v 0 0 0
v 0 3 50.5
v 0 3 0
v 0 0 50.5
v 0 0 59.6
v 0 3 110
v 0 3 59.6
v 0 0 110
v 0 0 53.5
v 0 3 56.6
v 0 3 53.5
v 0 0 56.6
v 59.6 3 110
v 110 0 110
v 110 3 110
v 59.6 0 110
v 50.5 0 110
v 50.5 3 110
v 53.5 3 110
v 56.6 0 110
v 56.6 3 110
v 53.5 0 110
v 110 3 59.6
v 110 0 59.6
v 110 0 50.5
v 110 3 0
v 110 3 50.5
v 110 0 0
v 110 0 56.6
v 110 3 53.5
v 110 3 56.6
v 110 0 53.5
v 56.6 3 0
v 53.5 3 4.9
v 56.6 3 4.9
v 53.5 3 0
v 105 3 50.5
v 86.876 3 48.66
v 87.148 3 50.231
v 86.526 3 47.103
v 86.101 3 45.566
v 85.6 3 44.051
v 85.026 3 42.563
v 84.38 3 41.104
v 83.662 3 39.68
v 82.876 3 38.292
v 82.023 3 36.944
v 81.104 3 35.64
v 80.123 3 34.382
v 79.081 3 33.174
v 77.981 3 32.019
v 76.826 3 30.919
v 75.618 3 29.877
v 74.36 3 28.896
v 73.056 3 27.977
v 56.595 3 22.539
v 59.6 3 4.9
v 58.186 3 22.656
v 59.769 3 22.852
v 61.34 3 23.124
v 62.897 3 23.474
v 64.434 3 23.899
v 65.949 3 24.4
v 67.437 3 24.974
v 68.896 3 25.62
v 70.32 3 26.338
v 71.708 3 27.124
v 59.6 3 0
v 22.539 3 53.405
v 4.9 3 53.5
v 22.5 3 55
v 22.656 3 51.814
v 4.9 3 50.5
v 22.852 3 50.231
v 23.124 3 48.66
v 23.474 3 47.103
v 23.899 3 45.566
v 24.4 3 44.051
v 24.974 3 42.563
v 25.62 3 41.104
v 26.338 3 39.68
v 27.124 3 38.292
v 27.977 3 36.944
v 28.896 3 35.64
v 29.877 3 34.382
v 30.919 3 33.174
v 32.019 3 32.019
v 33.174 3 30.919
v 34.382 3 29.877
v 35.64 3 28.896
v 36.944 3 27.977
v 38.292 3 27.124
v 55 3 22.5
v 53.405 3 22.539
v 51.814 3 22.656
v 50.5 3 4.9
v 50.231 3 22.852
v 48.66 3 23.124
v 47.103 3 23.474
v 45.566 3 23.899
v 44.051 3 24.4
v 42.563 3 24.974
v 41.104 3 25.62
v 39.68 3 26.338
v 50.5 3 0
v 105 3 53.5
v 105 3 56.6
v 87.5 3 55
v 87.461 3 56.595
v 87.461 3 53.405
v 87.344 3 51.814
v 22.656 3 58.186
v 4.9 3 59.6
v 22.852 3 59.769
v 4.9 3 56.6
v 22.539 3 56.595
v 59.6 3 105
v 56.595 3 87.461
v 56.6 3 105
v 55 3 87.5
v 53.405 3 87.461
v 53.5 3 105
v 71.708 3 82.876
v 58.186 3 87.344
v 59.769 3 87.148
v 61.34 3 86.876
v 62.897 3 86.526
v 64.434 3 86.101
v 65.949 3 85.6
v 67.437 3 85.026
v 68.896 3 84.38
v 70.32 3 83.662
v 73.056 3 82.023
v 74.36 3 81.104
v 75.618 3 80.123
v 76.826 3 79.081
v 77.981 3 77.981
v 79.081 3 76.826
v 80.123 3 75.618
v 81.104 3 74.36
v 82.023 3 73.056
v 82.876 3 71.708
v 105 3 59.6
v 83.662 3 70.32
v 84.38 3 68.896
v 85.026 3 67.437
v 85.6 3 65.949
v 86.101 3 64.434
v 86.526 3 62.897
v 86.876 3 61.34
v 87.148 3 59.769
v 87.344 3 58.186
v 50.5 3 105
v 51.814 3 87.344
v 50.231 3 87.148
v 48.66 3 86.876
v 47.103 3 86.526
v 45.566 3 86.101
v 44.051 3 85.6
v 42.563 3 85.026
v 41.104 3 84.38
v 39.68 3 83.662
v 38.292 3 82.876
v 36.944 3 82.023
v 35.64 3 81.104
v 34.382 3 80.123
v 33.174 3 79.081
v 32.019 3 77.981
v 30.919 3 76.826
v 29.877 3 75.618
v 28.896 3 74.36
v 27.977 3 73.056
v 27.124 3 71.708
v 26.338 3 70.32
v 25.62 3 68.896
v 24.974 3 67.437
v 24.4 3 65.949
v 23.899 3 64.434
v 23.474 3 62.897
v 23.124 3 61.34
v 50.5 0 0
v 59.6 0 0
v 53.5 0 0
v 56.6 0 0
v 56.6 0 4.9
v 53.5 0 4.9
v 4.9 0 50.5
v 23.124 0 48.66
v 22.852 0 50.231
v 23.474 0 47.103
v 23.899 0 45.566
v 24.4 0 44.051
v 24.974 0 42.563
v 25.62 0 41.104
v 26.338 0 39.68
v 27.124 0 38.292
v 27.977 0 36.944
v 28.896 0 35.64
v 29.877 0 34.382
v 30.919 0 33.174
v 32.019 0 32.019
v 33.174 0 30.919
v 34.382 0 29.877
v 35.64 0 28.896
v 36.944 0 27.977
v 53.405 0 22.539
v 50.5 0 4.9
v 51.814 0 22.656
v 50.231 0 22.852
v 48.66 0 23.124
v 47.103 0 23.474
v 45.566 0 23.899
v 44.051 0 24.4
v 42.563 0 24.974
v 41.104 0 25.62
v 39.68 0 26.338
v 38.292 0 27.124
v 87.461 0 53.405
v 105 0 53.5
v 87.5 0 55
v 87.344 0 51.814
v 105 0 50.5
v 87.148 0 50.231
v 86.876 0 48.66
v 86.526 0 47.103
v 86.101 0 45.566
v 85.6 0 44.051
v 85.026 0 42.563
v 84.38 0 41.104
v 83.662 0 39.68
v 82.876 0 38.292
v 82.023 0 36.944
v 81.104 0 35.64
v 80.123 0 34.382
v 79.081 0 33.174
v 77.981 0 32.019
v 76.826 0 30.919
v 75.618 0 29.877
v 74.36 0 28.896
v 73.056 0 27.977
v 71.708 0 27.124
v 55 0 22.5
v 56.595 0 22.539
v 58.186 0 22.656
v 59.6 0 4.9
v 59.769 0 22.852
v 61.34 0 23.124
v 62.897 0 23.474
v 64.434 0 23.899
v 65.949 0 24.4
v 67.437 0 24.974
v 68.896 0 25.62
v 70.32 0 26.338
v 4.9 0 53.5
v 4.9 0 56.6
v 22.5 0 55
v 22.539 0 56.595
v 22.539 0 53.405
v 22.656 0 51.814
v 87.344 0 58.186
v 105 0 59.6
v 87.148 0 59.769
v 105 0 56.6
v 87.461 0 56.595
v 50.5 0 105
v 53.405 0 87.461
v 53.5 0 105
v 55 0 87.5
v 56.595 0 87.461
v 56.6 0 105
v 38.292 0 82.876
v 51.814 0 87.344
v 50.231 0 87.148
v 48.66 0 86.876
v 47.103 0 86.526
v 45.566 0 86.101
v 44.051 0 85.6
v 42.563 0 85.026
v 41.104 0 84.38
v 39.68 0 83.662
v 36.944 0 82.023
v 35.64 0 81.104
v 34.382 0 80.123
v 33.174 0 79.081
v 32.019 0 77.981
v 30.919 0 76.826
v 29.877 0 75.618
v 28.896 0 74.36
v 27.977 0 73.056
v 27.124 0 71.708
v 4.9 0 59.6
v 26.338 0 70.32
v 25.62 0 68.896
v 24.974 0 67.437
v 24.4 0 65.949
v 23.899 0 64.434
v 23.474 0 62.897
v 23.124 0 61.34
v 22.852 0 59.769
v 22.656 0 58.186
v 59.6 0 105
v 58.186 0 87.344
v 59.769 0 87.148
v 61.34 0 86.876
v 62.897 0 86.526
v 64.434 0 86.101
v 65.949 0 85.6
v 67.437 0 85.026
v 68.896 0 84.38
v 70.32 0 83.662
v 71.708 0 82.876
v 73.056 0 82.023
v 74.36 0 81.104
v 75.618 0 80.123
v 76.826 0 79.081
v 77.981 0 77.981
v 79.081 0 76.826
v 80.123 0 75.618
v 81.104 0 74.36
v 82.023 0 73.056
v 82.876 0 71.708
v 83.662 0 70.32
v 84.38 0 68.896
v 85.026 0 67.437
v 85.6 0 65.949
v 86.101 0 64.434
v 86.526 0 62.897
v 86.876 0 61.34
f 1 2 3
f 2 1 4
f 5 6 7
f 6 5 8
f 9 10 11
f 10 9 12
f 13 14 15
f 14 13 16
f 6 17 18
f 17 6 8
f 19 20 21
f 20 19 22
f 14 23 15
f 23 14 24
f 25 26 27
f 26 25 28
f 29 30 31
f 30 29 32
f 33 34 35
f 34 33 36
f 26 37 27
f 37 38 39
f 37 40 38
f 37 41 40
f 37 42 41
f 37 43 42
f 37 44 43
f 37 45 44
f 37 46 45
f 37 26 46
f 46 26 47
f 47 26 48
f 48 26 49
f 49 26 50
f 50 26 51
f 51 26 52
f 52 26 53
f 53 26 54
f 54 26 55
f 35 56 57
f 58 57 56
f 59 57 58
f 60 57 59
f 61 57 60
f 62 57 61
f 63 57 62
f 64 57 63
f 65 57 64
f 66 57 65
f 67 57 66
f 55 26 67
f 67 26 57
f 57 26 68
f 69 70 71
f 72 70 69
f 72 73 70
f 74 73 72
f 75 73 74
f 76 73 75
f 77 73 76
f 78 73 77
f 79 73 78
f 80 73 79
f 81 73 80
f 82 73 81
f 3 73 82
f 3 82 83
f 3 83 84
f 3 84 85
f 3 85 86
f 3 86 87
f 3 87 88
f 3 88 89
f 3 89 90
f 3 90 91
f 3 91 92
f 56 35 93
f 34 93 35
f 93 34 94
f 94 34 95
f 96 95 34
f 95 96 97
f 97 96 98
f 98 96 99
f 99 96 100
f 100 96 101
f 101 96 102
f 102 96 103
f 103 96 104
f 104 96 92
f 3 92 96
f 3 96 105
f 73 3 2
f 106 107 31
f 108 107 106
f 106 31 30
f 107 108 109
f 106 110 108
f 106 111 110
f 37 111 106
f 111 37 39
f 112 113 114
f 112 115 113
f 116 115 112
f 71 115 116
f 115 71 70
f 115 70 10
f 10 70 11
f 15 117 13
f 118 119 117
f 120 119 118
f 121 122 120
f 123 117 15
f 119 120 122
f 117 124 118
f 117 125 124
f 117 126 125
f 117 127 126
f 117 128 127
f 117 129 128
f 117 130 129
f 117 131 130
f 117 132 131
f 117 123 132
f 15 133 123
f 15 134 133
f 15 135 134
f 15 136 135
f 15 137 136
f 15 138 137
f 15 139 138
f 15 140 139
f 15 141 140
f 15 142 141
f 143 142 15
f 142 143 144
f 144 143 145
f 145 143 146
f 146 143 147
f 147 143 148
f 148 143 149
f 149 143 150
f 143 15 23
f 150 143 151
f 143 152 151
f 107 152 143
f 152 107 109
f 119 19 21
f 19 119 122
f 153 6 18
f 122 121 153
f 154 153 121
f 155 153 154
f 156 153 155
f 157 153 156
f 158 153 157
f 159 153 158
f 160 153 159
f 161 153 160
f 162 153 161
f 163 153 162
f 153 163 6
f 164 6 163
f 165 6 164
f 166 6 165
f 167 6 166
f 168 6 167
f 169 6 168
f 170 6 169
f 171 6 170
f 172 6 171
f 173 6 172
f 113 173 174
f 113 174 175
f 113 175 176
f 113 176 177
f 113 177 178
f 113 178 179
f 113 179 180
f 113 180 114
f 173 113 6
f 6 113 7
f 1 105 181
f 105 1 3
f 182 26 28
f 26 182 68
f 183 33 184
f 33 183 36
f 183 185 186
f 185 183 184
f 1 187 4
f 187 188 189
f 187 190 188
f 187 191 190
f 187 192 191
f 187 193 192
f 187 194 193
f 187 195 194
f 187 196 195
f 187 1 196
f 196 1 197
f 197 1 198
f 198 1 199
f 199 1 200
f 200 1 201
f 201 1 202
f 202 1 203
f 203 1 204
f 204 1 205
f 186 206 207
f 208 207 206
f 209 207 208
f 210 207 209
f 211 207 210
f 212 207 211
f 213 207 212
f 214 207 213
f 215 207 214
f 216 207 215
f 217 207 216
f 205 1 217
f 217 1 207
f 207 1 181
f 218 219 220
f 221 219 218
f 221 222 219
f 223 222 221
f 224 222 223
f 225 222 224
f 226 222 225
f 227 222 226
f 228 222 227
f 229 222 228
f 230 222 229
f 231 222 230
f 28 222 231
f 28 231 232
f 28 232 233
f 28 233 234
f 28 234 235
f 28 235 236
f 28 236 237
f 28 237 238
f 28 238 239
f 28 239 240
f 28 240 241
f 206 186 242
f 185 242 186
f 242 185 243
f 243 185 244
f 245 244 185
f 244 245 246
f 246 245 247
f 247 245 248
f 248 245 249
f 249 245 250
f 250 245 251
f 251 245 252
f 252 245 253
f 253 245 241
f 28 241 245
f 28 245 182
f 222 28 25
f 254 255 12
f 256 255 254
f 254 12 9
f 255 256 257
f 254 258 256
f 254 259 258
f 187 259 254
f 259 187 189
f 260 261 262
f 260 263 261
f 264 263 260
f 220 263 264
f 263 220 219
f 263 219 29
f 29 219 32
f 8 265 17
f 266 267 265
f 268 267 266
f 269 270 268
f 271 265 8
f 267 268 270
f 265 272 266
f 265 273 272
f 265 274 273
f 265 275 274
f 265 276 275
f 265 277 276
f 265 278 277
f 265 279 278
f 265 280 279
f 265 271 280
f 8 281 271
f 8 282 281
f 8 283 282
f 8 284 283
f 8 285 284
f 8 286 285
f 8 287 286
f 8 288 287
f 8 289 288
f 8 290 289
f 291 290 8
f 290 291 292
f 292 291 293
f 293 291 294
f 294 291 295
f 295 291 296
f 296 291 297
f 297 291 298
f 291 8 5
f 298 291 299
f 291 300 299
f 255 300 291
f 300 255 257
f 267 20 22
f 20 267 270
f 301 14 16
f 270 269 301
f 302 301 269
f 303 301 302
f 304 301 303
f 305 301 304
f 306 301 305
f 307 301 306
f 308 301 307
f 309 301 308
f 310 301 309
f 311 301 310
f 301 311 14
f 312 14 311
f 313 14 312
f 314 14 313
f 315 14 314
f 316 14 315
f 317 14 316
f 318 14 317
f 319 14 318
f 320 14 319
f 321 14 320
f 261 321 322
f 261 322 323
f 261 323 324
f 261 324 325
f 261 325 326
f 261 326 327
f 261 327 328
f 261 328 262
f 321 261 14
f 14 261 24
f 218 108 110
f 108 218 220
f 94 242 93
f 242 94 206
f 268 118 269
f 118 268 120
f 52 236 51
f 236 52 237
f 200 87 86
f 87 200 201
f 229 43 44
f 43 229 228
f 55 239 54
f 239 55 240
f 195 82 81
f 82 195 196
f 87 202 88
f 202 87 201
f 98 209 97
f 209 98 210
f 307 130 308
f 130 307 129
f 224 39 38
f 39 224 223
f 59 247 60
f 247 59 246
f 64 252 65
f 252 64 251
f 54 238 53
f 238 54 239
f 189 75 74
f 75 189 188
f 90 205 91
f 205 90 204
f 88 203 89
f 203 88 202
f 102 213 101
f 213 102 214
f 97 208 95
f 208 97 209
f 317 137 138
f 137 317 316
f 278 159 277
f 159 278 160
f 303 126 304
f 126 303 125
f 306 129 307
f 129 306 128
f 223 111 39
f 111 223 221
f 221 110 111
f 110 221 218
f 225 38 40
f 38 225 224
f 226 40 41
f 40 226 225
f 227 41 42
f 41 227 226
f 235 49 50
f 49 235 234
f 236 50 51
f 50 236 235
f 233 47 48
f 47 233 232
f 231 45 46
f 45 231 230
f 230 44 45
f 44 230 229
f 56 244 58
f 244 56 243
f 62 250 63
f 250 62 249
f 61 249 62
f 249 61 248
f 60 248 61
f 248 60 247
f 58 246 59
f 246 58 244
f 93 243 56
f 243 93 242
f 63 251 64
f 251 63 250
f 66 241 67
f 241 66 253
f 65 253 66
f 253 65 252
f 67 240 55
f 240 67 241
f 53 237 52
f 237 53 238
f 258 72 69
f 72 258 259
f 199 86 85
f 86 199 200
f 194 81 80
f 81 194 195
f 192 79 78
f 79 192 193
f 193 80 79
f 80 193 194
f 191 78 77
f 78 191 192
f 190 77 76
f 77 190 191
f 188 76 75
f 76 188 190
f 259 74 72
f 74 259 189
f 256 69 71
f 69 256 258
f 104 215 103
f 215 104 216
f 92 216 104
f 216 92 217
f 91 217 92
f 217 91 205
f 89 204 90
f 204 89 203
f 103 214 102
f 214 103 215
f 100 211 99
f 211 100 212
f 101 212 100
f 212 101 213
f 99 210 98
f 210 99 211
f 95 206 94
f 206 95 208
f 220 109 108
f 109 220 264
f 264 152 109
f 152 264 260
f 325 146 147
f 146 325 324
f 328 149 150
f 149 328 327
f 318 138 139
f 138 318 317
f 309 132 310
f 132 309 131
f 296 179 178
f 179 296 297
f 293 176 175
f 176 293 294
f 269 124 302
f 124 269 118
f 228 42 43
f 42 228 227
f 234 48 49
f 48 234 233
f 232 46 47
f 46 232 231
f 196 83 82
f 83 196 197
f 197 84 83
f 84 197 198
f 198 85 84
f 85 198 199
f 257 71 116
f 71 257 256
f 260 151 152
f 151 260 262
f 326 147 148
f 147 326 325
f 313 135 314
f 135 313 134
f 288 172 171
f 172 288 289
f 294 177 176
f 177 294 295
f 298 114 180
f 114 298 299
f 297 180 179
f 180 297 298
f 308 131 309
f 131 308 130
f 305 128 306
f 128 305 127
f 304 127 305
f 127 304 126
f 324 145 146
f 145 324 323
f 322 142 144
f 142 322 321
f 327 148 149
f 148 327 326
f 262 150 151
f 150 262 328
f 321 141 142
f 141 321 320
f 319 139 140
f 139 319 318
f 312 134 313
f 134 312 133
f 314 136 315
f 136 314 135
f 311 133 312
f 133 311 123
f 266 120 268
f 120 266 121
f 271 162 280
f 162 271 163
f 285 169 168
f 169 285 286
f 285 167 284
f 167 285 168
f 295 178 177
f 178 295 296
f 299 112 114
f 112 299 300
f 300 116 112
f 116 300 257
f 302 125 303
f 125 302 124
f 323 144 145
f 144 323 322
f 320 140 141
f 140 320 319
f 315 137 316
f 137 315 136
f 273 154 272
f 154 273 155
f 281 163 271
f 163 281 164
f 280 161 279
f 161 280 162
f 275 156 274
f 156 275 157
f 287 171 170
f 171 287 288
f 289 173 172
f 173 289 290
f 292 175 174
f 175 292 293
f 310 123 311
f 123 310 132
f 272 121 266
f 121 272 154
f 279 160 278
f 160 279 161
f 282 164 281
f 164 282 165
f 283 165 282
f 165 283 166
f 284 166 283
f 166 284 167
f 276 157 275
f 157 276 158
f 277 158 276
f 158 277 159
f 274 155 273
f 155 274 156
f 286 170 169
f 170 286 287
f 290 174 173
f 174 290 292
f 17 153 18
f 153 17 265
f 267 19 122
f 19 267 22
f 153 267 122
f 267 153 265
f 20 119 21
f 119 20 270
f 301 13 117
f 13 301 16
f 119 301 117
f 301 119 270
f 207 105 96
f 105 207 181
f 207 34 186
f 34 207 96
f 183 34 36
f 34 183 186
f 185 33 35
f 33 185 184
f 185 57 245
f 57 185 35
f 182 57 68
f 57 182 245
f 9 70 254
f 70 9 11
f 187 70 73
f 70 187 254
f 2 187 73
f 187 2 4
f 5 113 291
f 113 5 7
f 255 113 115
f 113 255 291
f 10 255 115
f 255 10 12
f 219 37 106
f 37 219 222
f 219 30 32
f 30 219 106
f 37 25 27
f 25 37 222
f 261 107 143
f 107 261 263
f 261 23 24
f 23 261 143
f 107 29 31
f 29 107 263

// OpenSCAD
// ============================================================
// Hamster Habitat — Suluk Askisi / Yem Kapisi Paneli
// 110x3x110mm panel + merkezde r=32.5mm delik
// Suluk: konik sise flansindan asılır | Yem: kapak_yem ile kapanir
// ============================================================
$fn = 128;

module panel_suluk() {
  color("lightcyan", 0.9)
  difference() {
    cube([110, 3, 110]);

    // suluk deligi — tam merkez, flans panel yuzeyine oturur
    translate([55, -0.1, 55]) rotate([-90, 0, 0]) cylinder(r=32.5, h=3.2);

    // ust kenar — 2 notch
    translate([50.5, -0.1, 105]) cube([3, 3.2, 5]);
    translate([56.6, -0.1, 105]) cube([3, 3.2, 5]);
    // alt kenar — 2 notch
    translate([50.5, -0.1,  -0.1]) cube([3, 3.2, 5]);
    translate([56.6, -0.1,  -0.1]) cube([3, 3.2, 5]);
    // sol kenar — 2 notch
    translate([ -0.1, -0.1, 50.5]) cube([5, 3.2, 3]);
    translate([ -0.1, -0.1, 56.6]) cube([5, 3.2, 3]);
    // sag kenar — 2 notch
    translate([  105, -0.1, 50.5]) cube([5, 3.2, 3]);
    translate([  105, -0.1, 56.6]) cube([5, 3.2, 3]);
  }
}

panel_suluk();
